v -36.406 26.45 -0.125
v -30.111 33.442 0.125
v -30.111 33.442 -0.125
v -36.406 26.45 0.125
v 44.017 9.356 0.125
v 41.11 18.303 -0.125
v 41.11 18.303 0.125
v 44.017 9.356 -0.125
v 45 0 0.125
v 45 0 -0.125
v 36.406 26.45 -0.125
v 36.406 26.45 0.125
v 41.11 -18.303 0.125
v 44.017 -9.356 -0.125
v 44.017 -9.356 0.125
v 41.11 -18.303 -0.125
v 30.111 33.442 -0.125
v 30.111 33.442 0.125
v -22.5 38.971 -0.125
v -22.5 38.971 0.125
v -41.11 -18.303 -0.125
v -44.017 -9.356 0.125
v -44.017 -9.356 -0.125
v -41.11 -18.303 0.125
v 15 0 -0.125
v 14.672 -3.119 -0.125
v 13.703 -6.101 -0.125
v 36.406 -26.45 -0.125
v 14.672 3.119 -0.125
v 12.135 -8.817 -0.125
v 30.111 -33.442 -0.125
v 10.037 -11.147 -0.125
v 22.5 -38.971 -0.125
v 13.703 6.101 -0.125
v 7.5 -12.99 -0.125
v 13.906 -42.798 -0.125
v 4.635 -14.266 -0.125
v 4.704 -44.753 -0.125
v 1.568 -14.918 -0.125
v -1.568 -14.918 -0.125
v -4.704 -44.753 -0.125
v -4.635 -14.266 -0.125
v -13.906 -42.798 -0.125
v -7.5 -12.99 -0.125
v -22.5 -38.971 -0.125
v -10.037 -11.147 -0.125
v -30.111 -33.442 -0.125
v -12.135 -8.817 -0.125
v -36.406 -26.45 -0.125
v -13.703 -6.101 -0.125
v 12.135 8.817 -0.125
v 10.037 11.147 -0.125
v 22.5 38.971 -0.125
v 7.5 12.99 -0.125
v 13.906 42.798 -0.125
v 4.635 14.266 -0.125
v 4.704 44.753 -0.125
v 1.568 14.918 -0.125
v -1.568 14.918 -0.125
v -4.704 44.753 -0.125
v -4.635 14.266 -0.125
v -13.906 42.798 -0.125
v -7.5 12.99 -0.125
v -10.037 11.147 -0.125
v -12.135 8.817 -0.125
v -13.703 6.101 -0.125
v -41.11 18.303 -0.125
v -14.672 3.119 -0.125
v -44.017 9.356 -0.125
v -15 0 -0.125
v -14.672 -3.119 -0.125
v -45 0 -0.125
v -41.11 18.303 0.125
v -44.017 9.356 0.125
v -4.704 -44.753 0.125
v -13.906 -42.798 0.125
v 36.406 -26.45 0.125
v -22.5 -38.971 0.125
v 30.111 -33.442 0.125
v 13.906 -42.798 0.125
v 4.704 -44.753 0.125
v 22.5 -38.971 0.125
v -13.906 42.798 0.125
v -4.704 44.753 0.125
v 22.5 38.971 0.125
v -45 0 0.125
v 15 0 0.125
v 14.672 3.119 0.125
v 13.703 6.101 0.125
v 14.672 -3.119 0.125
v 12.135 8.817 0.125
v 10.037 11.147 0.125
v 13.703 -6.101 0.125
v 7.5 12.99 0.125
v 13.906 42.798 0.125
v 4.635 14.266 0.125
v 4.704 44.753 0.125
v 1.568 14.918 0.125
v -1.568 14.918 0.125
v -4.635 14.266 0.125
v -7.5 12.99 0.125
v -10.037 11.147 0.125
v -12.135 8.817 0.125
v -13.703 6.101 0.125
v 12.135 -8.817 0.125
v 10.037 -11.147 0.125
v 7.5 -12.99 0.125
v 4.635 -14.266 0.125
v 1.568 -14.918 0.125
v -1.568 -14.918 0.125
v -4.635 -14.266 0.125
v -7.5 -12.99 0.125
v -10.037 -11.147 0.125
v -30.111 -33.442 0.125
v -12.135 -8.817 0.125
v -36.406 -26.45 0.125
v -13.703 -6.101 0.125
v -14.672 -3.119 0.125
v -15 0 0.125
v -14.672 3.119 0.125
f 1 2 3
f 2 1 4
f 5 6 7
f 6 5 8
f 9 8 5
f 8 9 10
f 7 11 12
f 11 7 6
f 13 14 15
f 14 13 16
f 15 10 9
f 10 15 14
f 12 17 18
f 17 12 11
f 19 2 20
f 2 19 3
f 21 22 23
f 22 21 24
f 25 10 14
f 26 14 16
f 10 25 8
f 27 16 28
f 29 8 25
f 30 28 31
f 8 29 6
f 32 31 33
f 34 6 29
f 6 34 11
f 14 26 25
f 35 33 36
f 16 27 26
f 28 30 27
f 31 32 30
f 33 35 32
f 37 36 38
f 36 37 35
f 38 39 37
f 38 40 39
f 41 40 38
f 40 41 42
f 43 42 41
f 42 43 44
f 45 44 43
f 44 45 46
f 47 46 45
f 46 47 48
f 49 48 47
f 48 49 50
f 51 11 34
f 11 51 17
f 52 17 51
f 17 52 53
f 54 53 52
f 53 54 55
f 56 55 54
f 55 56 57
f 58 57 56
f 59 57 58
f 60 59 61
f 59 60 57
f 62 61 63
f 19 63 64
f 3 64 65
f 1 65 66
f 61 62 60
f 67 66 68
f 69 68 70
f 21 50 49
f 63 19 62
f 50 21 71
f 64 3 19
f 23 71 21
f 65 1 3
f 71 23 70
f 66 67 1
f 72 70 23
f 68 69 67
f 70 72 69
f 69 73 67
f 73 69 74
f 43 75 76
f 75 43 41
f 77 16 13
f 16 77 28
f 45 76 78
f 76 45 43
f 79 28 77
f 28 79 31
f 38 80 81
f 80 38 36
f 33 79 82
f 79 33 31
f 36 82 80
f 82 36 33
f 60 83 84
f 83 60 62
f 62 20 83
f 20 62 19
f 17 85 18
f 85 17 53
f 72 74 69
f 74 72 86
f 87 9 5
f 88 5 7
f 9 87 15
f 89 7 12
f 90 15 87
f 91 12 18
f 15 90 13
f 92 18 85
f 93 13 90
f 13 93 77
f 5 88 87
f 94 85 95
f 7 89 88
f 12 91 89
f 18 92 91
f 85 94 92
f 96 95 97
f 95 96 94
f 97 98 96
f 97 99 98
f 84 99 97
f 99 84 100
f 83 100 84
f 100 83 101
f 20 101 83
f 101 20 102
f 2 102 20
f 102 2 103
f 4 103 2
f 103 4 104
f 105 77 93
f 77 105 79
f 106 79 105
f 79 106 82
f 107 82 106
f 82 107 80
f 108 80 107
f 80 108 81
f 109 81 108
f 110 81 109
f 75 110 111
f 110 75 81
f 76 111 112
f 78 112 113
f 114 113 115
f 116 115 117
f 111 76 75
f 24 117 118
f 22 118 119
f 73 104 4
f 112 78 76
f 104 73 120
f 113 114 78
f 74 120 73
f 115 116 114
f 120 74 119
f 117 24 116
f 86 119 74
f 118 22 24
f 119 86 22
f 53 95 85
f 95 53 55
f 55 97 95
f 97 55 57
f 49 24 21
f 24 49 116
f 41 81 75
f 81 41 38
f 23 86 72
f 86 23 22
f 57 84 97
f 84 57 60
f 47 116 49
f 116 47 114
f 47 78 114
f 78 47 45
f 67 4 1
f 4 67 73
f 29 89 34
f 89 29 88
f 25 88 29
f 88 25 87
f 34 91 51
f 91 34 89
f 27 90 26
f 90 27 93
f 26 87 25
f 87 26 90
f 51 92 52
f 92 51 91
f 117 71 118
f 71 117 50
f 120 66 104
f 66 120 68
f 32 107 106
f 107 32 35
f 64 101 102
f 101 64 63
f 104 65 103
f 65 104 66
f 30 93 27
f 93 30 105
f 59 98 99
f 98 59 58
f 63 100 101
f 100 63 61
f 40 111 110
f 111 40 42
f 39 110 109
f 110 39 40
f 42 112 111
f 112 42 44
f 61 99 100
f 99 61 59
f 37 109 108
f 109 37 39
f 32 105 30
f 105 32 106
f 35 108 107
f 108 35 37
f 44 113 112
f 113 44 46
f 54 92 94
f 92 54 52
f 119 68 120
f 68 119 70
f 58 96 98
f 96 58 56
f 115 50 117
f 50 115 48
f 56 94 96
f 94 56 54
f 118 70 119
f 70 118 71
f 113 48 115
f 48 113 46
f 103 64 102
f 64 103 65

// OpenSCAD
target_radius = 75;
ring_height = .25;

difference() {
    cylinder(r=(target_radius/5*3), h=0.25, center=true);
    cylinder(r=(target_radius/5), h=0.25, center=true);
}
